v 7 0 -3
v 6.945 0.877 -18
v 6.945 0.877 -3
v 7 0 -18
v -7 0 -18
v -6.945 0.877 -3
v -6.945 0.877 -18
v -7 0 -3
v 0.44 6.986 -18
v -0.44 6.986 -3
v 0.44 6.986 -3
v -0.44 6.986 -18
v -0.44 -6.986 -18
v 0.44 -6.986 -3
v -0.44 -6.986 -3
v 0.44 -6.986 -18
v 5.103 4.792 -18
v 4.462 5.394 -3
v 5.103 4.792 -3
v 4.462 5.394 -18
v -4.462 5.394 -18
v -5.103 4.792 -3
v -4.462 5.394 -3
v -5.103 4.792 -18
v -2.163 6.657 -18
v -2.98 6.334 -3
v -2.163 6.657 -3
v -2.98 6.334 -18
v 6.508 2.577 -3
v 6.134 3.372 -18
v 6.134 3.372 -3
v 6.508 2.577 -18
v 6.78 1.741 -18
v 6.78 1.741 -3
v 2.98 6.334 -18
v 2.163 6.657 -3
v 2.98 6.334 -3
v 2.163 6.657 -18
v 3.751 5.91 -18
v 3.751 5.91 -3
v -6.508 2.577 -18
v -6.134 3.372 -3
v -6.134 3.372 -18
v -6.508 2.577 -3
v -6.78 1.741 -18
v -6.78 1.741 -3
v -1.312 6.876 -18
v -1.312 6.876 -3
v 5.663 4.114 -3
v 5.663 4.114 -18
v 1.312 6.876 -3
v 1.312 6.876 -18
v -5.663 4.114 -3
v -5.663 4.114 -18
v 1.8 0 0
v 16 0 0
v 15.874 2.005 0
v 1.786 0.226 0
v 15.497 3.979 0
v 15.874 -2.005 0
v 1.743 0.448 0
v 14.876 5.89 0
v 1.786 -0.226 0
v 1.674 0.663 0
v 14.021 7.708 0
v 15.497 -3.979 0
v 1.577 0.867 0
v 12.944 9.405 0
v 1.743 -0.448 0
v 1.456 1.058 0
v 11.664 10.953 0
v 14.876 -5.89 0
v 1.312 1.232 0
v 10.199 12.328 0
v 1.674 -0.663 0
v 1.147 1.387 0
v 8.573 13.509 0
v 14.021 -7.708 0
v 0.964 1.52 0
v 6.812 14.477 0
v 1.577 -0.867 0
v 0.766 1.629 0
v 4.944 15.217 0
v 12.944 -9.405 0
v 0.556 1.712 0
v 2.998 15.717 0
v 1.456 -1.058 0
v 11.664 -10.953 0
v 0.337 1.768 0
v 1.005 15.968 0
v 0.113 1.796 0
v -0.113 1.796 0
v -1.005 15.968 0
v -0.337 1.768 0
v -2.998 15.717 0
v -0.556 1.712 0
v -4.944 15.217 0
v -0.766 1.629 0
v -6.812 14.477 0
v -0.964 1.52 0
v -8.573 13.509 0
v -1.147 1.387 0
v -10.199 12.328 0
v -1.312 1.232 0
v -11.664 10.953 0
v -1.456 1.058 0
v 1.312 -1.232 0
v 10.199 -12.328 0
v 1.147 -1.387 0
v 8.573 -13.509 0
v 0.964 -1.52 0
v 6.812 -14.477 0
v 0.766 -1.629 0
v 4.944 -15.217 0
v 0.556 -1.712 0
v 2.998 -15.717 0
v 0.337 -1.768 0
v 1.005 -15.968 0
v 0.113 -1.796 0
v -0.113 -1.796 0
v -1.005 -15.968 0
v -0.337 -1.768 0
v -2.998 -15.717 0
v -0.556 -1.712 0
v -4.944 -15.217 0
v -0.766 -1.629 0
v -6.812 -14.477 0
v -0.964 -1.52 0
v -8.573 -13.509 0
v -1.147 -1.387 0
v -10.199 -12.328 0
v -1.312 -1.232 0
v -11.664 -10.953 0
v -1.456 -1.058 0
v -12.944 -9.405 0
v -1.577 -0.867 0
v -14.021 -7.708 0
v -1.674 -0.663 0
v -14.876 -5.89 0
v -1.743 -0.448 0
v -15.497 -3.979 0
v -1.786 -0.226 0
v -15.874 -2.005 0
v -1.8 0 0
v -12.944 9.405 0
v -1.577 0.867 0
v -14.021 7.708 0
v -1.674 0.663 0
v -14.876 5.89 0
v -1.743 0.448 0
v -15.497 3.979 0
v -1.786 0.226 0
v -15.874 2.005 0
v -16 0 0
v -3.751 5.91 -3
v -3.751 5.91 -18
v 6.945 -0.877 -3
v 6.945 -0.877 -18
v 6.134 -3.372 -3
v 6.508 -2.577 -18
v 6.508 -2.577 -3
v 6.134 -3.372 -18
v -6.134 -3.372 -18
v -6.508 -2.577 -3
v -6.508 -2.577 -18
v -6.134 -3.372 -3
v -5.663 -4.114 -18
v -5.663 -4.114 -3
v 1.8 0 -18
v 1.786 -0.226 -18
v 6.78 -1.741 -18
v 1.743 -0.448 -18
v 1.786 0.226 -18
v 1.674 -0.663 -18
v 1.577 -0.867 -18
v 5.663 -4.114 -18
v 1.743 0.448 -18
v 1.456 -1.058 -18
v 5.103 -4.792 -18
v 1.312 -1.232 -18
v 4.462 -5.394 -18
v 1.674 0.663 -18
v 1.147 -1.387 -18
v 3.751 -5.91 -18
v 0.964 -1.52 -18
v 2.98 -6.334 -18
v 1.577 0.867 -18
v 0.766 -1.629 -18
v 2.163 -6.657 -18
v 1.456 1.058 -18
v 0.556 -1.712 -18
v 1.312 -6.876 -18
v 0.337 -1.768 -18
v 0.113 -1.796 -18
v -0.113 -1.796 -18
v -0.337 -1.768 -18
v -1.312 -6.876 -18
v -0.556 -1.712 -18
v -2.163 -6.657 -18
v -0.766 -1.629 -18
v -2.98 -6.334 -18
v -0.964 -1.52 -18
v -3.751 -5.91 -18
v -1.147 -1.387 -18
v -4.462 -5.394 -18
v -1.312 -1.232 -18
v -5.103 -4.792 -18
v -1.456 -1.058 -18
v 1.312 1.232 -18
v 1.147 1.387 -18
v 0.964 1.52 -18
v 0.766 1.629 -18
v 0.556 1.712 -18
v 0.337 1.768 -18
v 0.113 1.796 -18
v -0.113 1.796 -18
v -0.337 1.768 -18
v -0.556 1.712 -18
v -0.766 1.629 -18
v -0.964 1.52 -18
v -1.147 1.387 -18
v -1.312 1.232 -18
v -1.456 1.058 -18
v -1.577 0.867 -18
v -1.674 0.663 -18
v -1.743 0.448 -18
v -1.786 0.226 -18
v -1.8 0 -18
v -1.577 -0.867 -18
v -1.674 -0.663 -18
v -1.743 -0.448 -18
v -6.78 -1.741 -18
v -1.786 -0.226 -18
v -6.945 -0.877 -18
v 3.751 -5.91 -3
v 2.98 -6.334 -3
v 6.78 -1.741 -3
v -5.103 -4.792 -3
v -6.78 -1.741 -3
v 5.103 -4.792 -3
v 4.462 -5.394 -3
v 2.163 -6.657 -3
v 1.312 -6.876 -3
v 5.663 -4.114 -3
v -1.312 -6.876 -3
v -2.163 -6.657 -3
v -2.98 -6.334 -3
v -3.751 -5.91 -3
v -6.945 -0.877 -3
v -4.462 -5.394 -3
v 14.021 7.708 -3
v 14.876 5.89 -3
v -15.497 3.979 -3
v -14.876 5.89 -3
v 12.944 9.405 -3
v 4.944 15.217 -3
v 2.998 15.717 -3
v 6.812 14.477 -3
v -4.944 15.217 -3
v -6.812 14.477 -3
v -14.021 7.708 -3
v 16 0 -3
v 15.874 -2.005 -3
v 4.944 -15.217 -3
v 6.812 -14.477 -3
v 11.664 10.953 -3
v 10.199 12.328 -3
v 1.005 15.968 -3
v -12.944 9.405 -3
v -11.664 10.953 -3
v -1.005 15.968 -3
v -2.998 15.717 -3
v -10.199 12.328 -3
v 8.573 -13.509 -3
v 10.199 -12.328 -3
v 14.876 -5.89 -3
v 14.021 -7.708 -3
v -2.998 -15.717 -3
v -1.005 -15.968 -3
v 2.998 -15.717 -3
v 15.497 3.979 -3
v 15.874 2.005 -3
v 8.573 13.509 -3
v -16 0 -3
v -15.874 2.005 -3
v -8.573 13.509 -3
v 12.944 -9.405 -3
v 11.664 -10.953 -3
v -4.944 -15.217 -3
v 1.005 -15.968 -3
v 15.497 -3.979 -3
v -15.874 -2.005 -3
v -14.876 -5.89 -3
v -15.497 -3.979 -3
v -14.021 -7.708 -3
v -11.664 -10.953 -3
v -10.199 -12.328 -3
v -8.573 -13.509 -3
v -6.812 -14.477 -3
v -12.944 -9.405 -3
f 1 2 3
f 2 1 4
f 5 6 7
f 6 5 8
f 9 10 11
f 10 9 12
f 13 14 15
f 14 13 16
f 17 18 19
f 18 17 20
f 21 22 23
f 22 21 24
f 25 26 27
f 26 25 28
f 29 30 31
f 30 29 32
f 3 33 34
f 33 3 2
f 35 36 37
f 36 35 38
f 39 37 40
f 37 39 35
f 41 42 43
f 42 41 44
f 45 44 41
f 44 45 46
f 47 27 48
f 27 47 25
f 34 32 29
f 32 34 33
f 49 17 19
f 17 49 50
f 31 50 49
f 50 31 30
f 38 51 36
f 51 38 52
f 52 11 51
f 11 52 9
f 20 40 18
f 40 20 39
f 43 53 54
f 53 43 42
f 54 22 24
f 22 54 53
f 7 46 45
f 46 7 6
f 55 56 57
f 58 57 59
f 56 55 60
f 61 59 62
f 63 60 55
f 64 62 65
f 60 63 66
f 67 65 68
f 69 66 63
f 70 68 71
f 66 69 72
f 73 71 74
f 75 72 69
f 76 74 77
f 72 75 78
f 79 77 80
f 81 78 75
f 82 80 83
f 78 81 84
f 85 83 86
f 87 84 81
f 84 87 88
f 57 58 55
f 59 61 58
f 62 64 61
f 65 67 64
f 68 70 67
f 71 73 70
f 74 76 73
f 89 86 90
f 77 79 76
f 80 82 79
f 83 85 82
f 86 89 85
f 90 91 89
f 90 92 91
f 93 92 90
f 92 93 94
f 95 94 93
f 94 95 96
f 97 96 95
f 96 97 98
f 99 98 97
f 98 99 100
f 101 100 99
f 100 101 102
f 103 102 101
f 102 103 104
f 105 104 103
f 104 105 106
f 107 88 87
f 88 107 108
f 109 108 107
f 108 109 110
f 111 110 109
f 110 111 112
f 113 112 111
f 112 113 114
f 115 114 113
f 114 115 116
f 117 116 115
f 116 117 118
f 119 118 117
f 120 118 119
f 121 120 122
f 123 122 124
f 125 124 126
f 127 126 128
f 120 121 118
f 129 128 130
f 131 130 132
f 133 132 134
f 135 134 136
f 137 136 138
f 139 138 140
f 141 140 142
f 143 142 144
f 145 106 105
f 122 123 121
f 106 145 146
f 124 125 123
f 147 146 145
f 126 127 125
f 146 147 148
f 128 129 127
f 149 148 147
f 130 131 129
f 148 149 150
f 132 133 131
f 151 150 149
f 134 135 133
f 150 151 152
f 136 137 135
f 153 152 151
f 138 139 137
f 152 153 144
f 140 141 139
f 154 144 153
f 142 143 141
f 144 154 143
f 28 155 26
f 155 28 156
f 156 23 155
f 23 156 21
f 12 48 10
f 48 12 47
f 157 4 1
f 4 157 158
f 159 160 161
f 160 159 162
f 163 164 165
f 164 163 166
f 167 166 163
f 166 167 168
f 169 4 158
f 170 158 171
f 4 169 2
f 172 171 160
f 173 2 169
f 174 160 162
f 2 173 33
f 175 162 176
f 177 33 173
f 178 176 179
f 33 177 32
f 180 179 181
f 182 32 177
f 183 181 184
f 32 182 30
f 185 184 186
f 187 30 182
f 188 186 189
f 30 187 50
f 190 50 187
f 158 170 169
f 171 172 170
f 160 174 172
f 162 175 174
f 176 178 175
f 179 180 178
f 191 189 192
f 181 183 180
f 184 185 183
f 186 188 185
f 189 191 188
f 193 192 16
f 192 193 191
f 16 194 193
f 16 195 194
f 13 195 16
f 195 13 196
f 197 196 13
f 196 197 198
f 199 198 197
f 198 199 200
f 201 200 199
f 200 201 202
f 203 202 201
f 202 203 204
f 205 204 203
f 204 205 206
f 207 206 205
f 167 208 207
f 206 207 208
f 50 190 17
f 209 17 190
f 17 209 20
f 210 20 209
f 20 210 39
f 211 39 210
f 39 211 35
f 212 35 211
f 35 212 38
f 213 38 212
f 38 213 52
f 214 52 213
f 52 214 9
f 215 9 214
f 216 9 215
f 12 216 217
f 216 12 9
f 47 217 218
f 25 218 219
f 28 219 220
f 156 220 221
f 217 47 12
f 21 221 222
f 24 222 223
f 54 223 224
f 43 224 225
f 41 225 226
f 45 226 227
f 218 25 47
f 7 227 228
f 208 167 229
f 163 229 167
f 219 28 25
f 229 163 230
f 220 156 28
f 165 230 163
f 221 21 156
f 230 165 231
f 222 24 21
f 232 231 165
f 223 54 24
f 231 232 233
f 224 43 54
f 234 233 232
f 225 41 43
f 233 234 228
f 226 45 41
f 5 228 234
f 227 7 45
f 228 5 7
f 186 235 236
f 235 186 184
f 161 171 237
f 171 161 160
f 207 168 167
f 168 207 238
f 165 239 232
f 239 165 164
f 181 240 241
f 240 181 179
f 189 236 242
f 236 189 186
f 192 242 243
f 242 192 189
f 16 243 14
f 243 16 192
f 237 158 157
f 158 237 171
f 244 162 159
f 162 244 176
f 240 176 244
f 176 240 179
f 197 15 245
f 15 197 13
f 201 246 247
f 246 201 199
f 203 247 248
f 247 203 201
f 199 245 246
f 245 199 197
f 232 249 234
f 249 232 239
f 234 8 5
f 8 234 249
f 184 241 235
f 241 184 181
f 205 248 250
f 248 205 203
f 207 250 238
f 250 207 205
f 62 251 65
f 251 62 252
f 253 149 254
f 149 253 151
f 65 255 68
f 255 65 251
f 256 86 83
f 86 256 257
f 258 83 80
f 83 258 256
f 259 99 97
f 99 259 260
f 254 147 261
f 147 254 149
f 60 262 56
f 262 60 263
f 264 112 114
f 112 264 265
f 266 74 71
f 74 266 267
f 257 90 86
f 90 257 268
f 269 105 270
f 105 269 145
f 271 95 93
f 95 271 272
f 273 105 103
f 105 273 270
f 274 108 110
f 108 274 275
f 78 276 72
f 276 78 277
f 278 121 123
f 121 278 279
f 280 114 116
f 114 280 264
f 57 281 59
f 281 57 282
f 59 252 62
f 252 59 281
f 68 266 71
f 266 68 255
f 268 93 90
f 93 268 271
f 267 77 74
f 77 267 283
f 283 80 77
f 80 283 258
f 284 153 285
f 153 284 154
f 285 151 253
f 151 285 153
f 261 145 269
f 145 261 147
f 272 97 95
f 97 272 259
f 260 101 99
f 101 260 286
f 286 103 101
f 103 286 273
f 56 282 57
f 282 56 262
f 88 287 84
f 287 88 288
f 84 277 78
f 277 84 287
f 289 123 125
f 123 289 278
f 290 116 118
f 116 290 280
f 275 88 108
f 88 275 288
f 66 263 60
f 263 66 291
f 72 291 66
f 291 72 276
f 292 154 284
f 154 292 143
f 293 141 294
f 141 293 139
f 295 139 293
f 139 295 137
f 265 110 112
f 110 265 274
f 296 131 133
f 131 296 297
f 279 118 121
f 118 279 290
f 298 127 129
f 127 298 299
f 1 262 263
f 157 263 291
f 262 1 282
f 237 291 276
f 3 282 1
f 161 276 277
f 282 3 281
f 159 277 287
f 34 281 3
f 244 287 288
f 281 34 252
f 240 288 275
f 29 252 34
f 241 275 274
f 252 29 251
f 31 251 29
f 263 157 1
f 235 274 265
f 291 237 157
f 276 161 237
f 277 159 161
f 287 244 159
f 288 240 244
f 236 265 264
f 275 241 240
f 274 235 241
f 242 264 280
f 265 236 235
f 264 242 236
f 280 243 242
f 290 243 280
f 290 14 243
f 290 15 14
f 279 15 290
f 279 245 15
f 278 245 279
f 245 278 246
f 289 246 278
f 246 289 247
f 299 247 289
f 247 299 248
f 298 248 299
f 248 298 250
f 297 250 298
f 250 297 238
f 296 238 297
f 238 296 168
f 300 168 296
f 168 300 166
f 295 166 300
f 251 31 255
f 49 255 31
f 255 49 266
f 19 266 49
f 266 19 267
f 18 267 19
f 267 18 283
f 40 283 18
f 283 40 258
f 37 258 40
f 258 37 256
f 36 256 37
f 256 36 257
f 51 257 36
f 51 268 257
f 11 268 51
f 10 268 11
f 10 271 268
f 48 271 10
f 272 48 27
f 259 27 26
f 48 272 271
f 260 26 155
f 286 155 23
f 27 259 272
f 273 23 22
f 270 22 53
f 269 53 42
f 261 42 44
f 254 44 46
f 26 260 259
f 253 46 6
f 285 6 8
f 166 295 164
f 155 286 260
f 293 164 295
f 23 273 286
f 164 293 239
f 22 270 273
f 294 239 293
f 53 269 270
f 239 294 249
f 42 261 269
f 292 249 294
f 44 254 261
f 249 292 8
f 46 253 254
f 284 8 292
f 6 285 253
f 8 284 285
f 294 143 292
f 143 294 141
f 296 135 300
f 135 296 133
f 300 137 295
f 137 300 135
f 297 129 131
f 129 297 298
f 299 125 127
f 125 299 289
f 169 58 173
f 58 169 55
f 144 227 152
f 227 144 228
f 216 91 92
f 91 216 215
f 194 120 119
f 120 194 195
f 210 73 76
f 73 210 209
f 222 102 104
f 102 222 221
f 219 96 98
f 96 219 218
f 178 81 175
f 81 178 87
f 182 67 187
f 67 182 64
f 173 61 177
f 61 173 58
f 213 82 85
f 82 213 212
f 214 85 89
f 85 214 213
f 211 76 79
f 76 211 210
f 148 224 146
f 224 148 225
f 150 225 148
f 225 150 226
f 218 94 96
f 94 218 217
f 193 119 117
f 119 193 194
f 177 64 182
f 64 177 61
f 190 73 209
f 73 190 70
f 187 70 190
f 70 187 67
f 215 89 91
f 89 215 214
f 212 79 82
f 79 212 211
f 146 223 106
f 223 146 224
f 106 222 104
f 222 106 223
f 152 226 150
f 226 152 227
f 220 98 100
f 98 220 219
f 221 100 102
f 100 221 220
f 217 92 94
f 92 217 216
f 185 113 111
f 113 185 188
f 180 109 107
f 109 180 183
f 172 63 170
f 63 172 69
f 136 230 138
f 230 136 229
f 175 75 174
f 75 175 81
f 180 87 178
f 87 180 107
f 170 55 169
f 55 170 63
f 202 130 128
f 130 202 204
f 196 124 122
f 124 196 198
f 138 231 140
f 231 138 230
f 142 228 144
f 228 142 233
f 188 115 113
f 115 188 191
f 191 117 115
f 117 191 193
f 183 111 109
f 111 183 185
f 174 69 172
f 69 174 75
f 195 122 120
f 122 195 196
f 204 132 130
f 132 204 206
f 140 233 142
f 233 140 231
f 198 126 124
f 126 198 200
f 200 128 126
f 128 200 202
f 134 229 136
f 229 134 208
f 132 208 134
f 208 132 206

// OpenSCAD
$fn = 50;


difference() {
	union() {
		translate(v = [0, 0, -18.0000000000]) {
			cylinder(h = 18, r = 7.0000000000);
		}
		translate(v = [0, 0, -3.0000000000]) {
			cylinder(h = 3, r = 16.0000000000);
		}
	}
	union() {
		#translate(v = [0, 0, -18]) {
			cylinder(h = 18, r = 1.8000000000);
		}
	}
}
